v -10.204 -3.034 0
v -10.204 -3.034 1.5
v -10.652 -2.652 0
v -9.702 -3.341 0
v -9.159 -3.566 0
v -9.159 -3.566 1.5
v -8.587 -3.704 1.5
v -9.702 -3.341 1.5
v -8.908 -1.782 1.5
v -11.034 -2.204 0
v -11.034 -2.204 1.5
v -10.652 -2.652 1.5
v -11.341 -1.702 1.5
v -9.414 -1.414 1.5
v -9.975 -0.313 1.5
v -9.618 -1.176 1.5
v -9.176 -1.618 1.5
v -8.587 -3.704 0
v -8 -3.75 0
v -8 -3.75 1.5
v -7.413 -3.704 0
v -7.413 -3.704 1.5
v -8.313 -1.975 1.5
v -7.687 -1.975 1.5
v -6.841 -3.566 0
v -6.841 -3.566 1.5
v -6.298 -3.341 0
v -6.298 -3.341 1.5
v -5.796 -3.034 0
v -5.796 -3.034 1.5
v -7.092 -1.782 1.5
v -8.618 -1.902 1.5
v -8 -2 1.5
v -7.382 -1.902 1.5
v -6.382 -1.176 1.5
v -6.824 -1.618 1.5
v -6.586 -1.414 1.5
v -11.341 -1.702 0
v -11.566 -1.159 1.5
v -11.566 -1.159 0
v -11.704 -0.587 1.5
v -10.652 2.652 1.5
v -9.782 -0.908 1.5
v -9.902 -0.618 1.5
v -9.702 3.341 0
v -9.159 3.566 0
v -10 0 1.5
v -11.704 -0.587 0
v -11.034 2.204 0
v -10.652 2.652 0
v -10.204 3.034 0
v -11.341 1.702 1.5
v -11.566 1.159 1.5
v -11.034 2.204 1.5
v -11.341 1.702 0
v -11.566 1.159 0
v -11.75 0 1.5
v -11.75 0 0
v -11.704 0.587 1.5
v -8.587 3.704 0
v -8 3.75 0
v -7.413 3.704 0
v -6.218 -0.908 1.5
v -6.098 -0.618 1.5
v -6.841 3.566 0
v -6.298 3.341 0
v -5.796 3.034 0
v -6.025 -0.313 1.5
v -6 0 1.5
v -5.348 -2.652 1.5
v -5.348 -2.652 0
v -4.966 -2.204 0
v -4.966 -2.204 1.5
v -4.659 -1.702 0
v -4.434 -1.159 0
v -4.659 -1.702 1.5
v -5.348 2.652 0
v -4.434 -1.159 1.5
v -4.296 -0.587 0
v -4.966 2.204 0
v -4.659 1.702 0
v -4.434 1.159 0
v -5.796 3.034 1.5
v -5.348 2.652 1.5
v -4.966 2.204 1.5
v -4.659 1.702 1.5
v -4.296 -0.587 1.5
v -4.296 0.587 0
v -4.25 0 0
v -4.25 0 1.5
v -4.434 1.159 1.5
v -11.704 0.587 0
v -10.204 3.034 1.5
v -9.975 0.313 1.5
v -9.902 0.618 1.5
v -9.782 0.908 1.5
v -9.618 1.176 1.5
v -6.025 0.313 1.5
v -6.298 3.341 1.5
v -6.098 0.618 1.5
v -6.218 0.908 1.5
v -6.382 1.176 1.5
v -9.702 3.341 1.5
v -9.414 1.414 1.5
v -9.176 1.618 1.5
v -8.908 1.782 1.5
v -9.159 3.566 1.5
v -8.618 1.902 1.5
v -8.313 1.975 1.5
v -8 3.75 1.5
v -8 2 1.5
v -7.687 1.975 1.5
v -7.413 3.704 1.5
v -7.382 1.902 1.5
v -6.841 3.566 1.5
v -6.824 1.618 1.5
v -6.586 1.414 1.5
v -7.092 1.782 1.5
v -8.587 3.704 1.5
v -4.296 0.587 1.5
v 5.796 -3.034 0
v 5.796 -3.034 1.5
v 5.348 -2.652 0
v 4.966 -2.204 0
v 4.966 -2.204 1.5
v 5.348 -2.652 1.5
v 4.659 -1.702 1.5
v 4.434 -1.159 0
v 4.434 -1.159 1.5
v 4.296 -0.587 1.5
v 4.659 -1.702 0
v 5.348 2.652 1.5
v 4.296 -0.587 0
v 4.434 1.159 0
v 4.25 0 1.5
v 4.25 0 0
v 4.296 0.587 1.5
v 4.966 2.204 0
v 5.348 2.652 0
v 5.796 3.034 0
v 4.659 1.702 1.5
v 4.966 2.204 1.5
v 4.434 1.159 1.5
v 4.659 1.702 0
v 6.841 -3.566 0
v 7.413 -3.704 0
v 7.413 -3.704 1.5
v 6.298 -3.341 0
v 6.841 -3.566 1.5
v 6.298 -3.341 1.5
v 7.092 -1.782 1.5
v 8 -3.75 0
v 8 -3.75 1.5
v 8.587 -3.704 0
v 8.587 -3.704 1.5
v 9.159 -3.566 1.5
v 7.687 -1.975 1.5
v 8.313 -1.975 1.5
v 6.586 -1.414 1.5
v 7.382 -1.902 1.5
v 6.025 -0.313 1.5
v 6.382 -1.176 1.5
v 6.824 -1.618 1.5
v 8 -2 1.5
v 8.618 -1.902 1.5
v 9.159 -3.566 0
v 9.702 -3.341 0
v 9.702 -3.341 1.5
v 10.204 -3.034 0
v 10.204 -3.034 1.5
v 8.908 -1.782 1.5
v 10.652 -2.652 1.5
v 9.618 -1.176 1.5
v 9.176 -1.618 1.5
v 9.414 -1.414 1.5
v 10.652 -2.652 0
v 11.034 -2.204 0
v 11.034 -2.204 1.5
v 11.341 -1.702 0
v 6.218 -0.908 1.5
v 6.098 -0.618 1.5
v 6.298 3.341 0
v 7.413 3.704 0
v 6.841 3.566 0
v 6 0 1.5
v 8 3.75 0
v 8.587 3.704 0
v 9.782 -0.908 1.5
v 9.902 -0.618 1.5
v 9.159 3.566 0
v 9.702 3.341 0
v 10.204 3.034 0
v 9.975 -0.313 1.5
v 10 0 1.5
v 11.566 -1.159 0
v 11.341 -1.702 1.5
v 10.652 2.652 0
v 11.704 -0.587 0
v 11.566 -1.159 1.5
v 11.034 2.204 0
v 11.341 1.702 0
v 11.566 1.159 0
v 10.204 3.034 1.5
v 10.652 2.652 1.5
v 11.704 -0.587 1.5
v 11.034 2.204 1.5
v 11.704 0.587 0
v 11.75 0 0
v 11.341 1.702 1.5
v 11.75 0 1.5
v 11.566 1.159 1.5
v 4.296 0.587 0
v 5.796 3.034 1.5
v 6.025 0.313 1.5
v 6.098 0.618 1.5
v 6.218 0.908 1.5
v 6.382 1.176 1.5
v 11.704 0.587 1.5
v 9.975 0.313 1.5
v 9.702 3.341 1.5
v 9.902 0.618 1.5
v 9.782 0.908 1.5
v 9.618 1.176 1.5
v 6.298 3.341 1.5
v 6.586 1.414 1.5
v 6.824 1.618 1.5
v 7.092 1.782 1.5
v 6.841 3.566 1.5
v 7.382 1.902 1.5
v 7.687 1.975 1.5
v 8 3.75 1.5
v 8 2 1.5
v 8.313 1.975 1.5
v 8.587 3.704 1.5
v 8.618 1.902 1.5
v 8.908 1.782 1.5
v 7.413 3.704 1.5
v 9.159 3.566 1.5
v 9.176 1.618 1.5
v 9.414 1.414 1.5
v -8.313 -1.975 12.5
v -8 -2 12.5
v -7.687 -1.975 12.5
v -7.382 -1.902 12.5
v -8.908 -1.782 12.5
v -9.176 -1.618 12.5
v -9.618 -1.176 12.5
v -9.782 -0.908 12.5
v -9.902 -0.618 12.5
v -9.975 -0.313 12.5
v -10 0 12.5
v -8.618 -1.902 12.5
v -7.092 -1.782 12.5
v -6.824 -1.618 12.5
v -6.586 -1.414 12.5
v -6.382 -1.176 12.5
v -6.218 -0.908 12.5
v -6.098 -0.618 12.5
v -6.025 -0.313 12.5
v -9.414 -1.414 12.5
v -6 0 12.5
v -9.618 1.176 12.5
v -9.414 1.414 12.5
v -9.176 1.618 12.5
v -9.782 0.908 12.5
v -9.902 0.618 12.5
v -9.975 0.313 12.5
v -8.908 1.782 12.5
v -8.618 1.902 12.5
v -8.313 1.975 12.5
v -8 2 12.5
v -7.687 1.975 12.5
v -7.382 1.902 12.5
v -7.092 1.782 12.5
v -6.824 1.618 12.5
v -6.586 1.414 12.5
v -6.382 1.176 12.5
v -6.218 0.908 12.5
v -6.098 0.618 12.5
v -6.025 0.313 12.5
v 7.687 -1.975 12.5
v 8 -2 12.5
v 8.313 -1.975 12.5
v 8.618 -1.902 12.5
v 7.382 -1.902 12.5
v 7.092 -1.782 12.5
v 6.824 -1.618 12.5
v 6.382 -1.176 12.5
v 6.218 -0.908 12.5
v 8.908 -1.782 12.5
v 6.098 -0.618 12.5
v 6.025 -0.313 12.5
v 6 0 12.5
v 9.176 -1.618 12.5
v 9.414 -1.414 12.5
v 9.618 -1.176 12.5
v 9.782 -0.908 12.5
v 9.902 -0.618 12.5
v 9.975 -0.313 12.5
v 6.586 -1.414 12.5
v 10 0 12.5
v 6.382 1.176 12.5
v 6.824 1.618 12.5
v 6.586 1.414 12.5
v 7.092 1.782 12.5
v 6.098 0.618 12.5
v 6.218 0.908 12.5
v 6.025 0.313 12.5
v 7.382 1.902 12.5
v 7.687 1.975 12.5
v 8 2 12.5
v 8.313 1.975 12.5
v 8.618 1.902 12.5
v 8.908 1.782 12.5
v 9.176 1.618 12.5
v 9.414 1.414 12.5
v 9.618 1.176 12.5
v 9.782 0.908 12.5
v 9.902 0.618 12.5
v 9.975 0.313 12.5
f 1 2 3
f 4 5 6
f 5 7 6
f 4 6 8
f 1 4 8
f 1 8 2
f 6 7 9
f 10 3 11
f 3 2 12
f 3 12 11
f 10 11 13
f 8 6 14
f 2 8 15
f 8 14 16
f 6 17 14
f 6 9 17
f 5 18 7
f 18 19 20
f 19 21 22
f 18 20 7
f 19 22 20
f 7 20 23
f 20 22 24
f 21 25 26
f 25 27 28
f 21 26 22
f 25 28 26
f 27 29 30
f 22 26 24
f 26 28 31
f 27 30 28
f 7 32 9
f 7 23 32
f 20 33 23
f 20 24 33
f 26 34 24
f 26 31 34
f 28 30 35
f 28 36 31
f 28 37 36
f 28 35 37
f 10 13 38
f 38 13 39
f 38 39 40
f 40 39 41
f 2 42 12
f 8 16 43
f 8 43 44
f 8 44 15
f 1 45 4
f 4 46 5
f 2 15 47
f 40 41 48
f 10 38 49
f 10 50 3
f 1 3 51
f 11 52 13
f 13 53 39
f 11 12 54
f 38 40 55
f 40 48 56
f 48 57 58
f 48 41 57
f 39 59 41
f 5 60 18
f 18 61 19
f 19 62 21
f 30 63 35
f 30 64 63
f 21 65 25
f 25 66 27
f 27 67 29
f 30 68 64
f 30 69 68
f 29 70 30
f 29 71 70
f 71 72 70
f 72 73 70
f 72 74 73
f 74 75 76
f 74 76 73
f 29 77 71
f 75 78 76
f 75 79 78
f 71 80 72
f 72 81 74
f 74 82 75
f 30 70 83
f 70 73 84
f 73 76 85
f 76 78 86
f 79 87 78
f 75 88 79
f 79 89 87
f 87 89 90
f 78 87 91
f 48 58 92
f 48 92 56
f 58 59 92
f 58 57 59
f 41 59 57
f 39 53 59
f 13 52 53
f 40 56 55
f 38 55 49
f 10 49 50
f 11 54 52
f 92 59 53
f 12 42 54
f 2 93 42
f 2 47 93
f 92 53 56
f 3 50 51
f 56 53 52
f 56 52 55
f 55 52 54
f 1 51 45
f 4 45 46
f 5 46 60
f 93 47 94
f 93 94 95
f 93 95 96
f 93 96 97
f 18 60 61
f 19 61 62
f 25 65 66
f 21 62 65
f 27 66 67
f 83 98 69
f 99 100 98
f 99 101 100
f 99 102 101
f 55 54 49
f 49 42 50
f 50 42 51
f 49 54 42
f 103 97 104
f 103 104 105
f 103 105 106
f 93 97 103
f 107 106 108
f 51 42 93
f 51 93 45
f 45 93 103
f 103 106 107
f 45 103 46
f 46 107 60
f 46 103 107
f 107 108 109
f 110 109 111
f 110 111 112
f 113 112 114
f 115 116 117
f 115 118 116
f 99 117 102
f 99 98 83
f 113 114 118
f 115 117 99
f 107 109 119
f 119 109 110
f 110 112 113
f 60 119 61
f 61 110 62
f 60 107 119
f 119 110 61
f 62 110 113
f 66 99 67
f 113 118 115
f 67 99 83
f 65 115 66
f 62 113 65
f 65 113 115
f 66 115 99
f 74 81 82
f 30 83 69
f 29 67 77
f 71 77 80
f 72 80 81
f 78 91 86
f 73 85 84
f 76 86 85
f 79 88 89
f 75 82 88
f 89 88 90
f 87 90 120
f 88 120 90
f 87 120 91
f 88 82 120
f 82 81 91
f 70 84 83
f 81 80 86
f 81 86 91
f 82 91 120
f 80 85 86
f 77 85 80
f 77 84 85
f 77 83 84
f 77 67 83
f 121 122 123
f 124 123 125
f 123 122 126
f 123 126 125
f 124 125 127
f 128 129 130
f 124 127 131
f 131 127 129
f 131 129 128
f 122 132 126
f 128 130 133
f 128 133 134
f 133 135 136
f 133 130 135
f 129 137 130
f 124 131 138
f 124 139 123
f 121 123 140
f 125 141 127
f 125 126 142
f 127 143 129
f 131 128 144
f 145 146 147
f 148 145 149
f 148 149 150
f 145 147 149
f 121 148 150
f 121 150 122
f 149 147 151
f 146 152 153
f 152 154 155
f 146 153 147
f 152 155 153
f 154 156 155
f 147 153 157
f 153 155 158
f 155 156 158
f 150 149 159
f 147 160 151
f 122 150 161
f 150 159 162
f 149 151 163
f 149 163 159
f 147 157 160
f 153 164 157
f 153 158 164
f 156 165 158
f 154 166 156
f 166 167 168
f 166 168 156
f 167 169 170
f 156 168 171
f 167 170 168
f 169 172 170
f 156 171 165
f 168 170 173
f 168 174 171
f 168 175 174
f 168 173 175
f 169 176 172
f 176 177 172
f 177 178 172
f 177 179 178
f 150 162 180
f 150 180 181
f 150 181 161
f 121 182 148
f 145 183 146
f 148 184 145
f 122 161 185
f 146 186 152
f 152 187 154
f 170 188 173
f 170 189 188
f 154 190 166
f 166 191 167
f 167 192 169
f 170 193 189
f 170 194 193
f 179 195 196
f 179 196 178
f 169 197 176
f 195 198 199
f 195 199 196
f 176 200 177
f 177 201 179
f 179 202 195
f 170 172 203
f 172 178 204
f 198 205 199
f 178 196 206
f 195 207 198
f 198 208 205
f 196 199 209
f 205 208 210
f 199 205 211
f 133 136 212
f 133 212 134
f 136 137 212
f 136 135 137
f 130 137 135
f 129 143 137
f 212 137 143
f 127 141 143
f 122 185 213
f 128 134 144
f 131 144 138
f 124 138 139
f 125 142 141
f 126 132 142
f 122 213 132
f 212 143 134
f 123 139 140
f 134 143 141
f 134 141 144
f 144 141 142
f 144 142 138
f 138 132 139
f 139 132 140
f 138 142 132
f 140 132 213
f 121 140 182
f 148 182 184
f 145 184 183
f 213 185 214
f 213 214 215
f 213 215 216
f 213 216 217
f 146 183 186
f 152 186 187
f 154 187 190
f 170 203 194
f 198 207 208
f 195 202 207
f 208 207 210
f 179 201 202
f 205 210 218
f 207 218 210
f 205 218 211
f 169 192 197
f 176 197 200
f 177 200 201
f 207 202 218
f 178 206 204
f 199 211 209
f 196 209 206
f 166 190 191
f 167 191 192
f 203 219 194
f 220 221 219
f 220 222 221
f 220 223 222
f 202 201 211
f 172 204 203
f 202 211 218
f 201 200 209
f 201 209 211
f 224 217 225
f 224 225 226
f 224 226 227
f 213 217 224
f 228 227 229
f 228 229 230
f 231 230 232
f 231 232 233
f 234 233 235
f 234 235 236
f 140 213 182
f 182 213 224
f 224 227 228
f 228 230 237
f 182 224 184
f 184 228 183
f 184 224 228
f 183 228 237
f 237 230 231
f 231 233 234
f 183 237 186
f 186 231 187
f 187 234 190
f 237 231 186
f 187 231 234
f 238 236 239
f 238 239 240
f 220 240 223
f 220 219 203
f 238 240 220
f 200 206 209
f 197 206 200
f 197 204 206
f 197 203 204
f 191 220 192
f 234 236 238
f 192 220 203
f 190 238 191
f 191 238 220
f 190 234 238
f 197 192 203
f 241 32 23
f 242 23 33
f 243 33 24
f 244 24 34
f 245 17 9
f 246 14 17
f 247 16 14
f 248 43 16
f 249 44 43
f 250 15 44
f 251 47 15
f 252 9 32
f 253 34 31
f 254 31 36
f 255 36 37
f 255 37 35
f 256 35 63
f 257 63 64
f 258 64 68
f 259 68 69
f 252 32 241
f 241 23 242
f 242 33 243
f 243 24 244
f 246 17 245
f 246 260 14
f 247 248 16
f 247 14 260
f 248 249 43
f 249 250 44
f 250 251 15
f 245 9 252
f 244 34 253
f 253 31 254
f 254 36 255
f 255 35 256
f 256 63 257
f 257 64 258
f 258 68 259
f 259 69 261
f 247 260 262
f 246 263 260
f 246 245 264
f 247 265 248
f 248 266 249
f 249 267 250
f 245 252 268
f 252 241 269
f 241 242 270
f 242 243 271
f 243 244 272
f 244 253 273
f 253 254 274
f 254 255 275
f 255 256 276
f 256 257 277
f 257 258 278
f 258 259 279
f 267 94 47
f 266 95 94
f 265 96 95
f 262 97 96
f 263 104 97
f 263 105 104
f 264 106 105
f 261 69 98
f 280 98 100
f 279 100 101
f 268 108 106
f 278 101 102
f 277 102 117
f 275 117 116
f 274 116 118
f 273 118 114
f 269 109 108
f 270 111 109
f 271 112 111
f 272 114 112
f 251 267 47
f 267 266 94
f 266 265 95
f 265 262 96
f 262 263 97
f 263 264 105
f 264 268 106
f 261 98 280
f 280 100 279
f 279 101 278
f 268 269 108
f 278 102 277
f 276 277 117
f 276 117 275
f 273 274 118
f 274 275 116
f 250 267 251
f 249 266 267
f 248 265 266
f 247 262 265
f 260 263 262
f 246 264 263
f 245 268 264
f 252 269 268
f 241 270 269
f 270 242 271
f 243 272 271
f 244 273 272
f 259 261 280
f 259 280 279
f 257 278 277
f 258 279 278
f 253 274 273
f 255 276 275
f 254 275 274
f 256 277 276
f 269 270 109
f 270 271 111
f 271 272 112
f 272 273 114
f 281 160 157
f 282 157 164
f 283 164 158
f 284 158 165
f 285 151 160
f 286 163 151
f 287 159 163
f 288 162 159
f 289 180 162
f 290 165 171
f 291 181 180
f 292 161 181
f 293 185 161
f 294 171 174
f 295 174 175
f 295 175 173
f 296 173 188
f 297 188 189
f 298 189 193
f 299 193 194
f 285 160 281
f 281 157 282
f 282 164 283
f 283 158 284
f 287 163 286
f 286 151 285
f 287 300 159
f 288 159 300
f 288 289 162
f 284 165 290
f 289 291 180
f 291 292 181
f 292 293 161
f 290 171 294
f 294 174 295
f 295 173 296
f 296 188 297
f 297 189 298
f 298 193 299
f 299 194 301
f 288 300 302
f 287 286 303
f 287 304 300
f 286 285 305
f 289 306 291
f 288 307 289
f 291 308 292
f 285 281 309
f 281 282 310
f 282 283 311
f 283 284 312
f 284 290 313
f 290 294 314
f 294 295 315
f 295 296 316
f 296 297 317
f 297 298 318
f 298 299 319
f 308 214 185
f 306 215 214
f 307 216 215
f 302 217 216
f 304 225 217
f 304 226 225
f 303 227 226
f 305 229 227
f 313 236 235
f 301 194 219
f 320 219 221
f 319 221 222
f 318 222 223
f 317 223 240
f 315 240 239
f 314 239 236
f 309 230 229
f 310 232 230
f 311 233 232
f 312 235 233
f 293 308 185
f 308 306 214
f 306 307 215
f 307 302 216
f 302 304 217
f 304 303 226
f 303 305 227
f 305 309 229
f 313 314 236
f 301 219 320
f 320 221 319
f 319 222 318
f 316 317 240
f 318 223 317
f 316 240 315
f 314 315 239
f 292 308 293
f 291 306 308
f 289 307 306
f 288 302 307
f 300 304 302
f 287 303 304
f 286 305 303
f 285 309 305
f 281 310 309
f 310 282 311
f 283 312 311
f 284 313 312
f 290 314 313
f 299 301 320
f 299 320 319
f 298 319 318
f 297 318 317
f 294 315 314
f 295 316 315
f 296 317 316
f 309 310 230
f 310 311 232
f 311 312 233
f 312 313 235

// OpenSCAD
// ====================================================================
// [PRINT 05] Vehicle Assembly Pins (Wheel-Less System)
// 2 Heavy-Duty 4.0mm Axle Pins to connect:
//   1. Trolley Glider Carriage (04) -> Hanger Arm (03)
//   2. Hanger Arm (03) -> Gondola Roof (01)
// ZERO SUPPORTS NEEDED - Sits flat on bed at Z = 0!
// ====================================================================

$fn = 40;

module trolley_heavy_duty_pin() {
    // Flat cap head resting at Z = 0
    cylinder(d = 7.5, h = 1.5);
    // Heavy-duty 4.0mm shaft (11.0mm length spans clevis ears)
    translate([0, 0, 1.5])
        cylinder(d = 4.0, h = 11.0);
}

// 2 Heavy-Duty Pins spaced comfortably on build plate at Z = 0
translate([-8.0, 0, 0]) trolley_heavy_duty_pin();
translate([ 8.0, 0, 0]) trolley_heavy_duty_pin();
